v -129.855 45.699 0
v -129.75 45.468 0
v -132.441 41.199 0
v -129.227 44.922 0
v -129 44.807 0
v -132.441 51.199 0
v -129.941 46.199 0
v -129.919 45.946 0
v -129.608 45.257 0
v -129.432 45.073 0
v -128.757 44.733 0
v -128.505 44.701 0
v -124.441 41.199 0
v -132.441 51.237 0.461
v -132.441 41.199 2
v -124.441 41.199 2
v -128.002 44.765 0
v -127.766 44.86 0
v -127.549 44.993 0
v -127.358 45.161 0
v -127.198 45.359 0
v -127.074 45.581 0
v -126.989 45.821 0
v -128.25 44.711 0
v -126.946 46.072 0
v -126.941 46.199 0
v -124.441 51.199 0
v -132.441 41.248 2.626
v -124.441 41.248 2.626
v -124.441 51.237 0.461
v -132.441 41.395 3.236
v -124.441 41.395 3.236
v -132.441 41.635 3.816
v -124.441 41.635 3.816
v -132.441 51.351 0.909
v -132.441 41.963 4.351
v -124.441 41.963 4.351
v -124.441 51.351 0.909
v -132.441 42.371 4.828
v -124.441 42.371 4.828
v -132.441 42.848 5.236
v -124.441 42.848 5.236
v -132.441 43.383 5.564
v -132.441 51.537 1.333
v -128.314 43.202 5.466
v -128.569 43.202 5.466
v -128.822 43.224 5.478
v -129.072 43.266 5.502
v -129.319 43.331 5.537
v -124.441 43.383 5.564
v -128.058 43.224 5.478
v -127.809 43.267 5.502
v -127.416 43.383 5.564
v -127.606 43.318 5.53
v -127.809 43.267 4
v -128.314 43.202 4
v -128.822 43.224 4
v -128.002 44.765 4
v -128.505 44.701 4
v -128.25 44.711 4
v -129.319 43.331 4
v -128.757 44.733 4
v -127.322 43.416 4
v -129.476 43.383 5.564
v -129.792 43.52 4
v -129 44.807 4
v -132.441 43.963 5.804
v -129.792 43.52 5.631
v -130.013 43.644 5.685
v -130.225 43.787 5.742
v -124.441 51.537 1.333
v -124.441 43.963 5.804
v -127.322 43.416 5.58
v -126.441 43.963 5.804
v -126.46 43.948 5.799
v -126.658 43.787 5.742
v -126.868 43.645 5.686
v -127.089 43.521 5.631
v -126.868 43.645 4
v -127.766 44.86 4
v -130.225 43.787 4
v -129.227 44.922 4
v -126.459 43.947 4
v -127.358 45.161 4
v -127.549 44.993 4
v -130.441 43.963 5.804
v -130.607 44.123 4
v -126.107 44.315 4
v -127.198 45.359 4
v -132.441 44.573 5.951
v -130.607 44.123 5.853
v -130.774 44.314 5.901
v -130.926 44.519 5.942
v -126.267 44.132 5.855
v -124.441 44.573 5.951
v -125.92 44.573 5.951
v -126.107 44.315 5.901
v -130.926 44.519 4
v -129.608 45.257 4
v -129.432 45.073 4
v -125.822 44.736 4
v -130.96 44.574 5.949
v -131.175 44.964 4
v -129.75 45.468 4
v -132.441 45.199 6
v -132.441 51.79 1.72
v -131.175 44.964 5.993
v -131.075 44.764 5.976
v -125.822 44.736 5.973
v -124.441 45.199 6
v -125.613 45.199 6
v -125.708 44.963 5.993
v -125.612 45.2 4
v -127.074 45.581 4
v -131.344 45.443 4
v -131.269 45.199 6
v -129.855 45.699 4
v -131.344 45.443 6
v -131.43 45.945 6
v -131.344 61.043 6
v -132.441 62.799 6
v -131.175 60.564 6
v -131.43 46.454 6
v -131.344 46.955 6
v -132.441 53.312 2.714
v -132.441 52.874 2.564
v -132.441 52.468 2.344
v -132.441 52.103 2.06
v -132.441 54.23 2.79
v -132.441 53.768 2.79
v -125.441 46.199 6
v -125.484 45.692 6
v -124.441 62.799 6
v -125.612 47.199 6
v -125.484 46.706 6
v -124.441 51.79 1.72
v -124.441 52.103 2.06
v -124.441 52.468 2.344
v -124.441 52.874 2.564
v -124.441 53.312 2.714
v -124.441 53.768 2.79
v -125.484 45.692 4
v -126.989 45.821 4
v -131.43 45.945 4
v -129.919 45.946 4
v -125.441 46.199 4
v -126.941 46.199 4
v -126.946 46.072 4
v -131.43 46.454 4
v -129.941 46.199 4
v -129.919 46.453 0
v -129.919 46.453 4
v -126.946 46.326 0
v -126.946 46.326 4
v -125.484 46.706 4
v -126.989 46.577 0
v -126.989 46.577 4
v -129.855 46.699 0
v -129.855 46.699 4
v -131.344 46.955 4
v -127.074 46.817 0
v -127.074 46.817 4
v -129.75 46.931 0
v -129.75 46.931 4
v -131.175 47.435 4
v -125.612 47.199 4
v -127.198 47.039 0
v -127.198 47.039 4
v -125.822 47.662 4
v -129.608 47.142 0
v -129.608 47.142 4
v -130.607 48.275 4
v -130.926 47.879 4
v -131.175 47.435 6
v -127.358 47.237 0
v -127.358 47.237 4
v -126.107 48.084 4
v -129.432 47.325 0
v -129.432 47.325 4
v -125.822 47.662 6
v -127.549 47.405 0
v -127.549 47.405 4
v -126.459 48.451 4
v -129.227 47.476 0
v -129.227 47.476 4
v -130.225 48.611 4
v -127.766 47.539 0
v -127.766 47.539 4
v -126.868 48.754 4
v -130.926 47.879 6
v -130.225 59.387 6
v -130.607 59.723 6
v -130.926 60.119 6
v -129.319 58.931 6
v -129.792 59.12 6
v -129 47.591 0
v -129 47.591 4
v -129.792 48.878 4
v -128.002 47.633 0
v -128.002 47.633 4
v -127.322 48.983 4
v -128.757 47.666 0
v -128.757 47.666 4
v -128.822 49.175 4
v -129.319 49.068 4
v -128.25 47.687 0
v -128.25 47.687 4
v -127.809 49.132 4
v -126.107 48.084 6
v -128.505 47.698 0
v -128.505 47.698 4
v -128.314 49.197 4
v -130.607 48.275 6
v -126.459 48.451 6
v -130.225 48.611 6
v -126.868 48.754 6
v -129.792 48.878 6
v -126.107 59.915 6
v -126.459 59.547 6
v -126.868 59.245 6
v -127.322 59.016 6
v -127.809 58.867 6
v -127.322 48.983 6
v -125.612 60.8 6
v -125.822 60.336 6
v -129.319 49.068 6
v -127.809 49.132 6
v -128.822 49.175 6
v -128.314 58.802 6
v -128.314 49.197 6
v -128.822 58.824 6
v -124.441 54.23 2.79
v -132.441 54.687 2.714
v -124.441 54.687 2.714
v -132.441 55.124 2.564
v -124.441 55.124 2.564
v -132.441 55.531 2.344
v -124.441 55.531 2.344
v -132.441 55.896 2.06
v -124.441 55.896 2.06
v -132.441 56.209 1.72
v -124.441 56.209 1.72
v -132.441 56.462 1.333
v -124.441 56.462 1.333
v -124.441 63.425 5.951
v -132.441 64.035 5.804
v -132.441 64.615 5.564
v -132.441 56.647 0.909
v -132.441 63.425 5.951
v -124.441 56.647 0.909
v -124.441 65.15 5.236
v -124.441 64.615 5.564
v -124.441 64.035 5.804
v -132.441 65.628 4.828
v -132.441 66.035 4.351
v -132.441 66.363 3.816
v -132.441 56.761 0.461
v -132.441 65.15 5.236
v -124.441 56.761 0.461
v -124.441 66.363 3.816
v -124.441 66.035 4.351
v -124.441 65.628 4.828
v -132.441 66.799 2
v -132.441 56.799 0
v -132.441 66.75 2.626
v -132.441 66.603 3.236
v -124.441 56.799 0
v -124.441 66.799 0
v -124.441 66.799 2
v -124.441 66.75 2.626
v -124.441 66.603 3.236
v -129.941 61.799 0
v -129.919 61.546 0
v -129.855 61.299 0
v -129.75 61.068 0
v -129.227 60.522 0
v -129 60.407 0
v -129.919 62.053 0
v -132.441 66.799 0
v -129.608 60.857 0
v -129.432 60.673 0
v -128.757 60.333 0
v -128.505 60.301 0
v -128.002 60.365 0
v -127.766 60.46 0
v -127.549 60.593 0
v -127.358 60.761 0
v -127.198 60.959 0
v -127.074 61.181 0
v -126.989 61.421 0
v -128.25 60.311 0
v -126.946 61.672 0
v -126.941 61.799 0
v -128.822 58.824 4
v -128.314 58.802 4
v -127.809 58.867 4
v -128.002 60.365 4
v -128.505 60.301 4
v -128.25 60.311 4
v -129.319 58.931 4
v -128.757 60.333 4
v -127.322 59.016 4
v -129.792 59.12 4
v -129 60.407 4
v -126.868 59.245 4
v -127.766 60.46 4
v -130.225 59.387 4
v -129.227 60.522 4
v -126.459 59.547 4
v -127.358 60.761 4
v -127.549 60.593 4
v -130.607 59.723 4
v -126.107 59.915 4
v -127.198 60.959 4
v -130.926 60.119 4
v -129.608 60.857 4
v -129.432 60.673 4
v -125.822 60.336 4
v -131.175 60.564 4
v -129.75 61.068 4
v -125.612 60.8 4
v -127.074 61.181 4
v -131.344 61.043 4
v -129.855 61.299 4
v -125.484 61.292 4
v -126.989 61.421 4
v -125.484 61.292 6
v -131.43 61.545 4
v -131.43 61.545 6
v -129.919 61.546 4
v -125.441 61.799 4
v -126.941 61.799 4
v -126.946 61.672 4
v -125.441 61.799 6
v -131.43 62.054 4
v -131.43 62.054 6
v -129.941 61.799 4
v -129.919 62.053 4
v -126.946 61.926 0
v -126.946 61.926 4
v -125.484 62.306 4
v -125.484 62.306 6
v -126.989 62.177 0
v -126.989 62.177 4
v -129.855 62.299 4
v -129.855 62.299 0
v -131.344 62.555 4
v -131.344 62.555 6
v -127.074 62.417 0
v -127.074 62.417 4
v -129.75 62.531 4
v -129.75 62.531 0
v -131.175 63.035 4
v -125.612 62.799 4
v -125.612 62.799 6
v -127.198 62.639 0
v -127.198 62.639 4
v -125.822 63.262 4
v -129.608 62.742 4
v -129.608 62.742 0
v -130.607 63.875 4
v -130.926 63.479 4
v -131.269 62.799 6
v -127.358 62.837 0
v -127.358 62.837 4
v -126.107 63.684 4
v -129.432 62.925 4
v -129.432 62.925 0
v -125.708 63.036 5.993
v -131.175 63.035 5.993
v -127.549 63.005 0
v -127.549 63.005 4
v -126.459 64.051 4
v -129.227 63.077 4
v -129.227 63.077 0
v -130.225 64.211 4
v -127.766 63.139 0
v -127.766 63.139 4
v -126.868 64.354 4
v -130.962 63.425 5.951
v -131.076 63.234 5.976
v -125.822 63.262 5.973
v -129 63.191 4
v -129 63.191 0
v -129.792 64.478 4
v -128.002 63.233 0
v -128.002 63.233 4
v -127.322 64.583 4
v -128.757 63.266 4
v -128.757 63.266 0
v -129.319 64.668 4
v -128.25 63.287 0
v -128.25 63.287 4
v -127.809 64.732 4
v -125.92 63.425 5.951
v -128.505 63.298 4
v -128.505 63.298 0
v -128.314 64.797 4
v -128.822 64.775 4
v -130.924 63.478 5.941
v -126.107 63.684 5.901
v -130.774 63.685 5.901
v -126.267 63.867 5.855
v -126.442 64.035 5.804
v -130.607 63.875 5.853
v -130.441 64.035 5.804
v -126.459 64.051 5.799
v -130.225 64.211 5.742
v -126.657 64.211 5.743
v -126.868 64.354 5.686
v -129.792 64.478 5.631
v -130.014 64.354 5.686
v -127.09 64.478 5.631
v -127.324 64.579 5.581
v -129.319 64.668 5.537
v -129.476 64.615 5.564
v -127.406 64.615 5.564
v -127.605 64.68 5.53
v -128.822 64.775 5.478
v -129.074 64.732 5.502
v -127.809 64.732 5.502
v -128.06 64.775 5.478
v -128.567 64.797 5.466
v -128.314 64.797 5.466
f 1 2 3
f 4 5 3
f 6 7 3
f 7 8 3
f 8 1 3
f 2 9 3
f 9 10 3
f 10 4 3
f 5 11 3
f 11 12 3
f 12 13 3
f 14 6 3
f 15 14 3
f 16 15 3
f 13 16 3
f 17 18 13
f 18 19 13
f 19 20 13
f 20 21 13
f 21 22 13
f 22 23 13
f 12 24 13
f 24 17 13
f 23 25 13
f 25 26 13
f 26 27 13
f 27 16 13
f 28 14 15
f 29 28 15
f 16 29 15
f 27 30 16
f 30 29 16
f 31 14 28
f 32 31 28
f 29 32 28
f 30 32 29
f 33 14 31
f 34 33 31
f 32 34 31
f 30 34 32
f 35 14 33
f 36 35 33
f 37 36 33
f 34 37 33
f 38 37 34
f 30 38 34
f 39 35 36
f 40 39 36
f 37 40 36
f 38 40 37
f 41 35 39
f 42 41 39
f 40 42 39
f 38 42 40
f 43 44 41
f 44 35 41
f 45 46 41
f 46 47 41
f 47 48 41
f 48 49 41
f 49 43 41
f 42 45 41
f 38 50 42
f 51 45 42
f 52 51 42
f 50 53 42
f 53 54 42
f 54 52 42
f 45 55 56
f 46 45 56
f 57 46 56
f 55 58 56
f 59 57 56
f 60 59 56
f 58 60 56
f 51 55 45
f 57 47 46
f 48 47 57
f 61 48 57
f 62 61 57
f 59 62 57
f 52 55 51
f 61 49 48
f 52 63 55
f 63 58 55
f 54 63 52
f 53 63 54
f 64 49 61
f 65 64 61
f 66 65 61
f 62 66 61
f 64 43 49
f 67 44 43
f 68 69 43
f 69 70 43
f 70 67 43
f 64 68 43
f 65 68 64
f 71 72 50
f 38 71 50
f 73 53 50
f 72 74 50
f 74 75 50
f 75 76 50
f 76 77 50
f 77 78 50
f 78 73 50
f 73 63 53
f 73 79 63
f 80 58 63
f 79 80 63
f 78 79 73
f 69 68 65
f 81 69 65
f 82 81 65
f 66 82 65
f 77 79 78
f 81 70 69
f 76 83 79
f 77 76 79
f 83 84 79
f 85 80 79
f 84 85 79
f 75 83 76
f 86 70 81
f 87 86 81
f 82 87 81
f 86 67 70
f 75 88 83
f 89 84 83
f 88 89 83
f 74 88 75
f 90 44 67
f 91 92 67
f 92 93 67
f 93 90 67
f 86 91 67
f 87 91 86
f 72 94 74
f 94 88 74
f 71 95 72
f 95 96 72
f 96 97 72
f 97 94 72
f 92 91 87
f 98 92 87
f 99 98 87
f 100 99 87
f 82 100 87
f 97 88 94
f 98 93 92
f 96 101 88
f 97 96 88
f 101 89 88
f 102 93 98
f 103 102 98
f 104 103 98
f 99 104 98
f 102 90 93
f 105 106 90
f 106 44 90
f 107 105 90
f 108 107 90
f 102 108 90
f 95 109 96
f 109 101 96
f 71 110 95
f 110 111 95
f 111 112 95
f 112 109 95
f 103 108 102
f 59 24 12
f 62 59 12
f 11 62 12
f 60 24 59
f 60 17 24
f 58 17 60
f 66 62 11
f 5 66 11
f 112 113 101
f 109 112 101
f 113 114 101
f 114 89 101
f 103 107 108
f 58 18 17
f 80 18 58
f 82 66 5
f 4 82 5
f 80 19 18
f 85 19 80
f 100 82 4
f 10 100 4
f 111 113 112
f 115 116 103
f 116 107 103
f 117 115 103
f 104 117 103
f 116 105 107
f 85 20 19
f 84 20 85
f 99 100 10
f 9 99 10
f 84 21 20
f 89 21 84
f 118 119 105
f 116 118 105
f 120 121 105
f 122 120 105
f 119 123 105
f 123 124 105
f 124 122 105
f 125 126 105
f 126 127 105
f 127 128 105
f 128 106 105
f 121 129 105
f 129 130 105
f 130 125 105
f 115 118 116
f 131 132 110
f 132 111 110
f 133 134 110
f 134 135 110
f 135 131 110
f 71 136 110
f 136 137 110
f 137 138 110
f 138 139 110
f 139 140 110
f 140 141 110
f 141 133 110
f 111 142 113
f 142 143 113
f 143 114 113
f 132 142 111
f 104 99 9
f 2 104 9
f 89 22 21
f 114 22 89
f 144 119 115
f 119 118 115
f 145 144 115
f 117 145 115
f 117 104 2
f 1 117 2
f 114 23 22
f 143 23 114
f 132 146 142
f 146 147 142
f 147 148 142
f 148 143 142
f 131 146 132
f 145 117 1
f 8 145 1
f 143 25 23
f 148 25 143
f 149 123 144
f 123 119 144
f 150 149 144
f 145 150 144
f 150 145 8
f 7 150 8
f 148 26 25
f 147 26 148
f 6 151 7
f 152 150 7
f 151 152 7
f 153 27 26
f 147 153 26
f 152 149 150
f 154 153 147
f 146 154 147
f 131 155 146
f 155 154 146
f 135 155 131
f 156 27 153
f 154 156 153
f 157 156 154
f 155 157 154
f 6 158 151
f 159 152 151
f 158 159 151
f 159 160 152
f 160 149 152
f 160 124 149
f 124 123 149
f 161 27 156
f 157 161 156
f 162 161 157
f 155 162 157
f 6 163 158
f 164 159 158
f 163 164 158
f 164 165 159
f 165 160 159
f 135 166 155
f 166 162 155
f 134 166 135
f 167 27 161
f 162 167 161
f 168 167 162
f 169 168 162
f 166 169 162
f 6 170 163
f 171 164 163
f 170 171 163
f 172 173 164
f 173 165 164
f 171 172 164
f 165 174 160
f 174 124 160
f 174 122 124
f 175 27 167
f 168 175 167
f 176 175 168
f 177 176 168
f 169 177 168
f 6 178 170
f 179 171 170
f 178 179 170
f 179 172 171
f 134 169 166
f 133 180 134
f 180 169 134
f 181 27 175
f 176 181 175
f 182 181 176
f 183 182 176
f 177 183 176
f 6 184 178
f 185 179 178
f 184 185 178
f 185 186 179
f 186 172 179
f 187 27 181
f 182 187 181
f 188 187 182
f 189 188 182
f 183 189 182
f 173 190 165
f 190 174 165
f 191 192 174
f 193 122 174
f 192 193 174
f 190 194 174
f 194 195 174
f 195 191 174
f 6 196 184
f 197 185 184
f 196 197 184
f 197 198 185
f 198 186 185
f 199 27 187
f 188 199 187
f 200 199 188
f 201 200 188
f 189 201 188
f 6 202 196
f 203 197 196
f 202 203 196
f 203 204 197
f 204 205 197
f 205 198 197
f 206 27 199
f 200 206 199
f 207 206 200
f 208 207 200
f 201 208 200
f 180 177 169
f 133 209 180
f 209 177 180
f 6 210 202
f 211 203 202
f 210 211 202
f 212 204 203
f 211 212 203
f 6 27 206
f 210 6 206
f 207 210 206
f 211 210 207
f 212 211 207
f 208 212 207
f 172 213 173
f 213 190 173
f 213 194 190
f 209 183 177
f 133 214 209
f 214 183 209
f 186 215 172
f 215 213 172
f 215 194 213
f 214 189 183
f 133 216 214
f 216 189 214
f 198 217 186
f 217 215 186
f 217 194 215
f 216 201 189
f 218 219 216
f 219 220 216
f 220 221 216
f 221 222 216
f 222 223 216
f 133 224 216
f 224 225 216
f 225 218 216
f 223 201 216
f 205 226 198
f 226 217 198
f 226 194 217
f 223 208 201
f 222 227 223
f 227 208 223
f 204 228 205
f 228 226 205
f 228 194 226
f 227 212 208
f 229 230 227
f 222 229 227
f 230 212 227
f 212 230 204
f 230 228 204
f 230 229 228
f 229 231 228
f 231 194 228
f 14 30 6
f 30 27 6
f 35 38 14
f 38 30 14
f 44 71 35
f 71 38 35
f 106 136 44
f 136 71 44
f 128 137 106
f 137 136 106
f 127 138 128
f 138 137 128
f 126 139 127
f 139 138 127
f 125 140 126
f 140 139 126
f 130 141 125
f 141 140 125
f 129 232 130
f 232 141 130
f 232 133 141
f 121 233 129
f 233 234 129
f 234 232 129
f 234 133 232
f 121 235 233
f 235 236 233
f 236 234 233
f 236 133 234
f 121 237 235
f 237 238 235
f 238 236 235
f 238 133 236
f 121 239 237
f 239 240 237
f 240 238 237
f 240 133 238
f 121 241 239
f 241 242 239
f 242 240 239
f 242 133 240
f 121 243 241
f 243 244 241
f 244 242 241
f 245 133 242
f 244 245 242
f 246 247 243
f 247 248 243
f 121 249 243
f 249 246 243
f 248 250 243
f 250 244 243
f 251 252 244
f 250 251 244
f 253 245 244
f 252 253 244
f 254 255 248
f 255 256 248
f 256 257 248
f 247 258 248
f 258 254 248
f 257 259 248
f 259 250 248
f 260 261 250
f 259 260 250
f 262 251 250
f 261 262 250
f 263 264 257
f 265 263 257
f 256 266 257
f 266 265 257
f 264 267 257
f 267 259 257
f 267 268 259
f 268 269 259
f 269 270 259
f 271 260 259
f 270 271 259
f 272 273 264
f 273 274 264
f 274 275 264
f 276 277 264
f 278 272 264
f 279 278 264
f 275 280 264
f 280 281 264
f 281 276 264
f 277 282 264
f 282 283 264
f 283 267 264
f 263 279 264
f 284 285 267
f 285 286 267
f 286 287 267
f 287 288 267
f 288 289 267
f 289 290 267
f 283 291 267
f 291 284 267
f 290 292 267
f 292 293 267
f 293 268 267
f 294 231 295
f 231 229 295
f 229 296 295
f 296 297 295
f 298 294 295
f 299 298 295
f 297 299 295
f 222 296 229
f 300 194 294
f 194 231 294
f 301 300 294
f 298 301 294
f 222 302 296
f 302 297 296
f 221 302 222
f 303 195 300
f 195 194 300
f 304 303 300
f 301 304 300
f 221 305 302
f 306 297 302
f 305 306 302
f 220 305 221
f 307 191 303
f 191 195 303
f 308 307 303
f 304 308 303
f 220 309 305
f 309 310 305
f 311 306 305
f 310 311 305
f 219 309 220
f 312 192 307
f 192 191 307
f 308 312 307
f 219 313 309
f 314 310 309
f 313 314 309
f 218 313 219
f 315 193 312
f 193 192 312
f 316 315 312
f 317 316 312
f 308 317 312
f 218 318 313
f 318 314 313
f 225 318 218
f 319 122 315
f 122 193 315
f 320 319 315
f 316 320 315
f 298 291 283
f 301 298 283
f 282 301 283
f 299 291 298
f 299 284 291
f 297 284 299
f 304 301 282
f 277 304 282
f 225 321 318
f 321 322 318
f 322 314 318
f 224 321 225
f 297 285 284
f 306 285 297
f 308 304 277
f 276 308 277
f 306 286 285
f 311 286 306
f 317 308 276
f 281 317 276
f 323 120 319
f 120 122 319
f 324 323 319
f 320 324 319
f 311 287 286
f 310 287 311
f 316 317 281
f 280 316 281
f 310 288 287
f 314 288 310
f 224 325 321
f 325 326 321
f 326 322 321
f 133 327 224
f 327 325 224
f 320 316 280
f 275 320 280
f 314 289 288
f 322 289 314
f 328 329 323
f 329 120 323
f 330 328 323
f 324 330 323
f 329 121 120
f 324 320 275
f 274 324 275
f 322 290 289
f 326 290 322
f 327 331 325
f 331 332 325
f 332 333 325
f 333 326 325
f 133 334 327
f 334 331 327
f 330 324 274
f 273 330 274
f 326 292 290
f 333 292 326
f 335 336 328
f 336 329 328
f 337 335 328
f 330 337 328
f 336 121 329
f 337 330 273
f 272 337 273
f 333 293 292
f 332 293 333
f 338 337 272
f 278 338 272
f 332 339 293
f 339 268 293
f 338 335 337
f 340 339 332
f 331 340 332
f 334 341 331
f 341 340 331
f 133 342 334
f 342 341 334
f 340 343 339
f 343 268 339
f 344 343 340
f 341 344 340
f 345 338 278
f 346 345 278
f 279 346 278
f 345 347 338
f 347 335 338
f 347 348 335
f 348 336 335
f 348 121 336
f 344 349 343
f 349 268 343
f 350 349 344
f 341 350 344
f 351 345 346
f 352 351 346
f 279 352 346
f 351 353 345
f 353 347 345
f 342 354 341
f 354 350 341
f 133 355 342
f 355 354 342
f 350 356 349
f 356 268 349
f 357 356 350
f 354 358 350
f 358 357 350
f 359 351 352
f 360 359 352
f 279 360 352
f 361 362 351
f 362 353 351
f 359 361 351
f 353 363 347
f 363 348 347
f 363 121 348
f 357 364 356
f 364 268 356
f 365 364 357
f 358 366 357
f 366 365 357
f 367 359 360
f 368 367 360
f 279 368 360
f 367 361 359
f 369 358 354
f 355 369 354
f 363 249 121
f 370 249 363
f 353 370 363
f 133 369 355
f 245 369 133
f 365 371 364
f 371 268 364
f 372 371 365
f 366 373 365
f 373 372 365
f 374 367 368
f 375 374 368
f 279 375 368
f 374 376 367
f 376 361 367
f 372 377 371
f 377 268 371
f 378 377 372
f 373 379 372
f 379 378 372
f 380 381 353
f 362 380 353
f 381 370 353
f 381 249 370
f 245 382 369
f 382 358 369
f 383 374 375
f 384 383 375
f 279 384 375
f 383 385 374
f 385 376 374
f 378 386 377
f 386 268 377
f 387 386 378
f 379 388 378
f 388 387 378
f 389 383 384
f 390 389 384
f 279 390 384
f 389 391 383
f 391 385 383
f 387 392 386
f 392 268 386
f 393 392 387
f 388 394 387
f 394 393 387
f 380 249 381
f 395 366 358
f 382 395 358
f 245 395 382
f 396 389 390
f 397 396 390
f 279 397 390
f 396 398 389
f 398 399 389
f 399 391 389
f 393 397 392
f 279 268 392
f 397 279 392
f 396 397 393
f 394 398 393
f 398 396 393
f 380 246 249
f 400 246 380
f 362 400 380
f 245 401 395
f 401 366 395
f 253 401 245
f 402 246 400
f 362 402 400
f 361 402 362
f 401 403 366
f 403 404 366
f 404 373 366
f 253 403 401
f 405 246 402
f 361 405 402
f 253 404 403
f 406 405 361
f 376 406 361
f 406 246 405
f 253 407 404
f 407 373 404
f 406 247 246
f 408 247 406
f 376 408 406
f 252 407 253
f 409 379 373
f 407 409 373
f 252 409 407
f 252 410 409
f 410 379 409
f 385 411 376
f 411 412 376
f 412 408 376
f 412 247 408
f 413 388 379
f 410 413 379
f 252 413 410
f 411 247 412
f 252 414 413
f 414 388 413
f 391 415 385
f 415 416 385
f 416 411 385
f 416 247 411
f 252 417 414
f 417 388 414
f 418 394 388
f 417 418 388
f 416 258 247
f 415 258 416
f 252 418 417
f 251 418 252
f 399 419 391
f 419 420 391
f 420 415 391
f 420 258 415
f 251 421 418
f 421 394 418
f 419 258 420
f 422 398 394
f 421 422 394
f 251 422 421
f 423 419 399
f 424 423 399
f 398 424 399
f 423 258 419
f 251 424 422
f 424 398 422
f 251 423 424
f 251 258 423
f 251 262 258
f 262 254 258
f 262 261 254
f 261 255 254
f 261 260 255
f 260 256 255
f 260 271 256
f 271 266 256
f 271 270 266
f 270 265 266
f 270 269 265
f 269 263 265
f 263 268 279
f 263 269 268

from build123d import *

# Parameters (mm, degrees)
CROQUIS1_W              = 8
CROQUIS1_H              = 25.6
CROQUIS1_R              = 1.5
SALIENTE_EXTRUIR1_DEPTH = 6
REDONDEO1_R             = 4
CROQUIS2_R              = 3
CORTAR_EXTRUIR1_DEPTH   = 2
CROQUIS3_R              = 2.8
CORTAR_EXTRUIR2_DEPTH   = 8


with BuildPart() as part:
    # Croquis1 → Saliente-Extruir1 (new body)
    with BuildSketch(Plane.XY):
        with Locations((-128.440920984, 53.999185999)):
            Rectangle(CROQUIS1_W, CROQUIS1_H)
        with Locations((-128.440920984, 61.799185999)):
            Circle(CROQUIS1_R, mode=Mode.SUBTRACT)
        with Locations((-128.440920984, 46.199185999)):
            Circle(CROQUIS1_R, mode=Mode.SUBTRACT)
    extrude(amount=SALIENTE_EXTRUIR1_DEPTH)

    # Redondeo1
    # the kernel refuses this fillet: 4 mm, written as the material it takes off along each edge
    with BuildSketch(Plane(origin=(-142.440920984, 66.799185999, 6), x_dir=(0, 0, -1), z_dir=(1, 0, 0)), Plane(origin=(-114.440920984, 41.199185999, 6), x_dir=(0, 0, -1), z_dir=(-1, 0, 0))) as redondeo1_piece_1:
        with BuildLine():
            CenterArc((REDONDEO1_R, -REDONDEO1_R), REDONDEO1_R, 90, 90)
            Line((0, -REDONDEO1_R), (0, 0))
            Line((0, 0), (REDONDEO1_R, 0))
        make_face()
    extrude(amount=28, mode=Mode.SUBTRACT)

    # Croquis2 → Cortar-Extruir1 (cut)
    with BuildSketch(Plane.XY.offset(6)):
        with Locations((-128.440920984, 46.199185999)):
            Circle(CROQUIS2_R)
        with Locations((-128.440920984, 61.799185999)):
            Circle(CROQUIS2_R)
    extrude(amount=-CORTAR_EXTRUIR1_DEPTH, mode=Mode.SUBTRACT)

    # Croquis3 → Cortar-Extruir2 (cut)
    with BuildSketch(Plane(origin=(-124.440920984, 0, 0), x_dir=(0, 0, -1), z_dir=(1, 0, 0))):
        with Locations((0, 53.999185999)):
            Circle(CROQUIS3_R)
    extrude(amount=-CORTAR_EXTRUIR2_DEPTH, mode=Mode.SUBTRACT)


solid = part.part
